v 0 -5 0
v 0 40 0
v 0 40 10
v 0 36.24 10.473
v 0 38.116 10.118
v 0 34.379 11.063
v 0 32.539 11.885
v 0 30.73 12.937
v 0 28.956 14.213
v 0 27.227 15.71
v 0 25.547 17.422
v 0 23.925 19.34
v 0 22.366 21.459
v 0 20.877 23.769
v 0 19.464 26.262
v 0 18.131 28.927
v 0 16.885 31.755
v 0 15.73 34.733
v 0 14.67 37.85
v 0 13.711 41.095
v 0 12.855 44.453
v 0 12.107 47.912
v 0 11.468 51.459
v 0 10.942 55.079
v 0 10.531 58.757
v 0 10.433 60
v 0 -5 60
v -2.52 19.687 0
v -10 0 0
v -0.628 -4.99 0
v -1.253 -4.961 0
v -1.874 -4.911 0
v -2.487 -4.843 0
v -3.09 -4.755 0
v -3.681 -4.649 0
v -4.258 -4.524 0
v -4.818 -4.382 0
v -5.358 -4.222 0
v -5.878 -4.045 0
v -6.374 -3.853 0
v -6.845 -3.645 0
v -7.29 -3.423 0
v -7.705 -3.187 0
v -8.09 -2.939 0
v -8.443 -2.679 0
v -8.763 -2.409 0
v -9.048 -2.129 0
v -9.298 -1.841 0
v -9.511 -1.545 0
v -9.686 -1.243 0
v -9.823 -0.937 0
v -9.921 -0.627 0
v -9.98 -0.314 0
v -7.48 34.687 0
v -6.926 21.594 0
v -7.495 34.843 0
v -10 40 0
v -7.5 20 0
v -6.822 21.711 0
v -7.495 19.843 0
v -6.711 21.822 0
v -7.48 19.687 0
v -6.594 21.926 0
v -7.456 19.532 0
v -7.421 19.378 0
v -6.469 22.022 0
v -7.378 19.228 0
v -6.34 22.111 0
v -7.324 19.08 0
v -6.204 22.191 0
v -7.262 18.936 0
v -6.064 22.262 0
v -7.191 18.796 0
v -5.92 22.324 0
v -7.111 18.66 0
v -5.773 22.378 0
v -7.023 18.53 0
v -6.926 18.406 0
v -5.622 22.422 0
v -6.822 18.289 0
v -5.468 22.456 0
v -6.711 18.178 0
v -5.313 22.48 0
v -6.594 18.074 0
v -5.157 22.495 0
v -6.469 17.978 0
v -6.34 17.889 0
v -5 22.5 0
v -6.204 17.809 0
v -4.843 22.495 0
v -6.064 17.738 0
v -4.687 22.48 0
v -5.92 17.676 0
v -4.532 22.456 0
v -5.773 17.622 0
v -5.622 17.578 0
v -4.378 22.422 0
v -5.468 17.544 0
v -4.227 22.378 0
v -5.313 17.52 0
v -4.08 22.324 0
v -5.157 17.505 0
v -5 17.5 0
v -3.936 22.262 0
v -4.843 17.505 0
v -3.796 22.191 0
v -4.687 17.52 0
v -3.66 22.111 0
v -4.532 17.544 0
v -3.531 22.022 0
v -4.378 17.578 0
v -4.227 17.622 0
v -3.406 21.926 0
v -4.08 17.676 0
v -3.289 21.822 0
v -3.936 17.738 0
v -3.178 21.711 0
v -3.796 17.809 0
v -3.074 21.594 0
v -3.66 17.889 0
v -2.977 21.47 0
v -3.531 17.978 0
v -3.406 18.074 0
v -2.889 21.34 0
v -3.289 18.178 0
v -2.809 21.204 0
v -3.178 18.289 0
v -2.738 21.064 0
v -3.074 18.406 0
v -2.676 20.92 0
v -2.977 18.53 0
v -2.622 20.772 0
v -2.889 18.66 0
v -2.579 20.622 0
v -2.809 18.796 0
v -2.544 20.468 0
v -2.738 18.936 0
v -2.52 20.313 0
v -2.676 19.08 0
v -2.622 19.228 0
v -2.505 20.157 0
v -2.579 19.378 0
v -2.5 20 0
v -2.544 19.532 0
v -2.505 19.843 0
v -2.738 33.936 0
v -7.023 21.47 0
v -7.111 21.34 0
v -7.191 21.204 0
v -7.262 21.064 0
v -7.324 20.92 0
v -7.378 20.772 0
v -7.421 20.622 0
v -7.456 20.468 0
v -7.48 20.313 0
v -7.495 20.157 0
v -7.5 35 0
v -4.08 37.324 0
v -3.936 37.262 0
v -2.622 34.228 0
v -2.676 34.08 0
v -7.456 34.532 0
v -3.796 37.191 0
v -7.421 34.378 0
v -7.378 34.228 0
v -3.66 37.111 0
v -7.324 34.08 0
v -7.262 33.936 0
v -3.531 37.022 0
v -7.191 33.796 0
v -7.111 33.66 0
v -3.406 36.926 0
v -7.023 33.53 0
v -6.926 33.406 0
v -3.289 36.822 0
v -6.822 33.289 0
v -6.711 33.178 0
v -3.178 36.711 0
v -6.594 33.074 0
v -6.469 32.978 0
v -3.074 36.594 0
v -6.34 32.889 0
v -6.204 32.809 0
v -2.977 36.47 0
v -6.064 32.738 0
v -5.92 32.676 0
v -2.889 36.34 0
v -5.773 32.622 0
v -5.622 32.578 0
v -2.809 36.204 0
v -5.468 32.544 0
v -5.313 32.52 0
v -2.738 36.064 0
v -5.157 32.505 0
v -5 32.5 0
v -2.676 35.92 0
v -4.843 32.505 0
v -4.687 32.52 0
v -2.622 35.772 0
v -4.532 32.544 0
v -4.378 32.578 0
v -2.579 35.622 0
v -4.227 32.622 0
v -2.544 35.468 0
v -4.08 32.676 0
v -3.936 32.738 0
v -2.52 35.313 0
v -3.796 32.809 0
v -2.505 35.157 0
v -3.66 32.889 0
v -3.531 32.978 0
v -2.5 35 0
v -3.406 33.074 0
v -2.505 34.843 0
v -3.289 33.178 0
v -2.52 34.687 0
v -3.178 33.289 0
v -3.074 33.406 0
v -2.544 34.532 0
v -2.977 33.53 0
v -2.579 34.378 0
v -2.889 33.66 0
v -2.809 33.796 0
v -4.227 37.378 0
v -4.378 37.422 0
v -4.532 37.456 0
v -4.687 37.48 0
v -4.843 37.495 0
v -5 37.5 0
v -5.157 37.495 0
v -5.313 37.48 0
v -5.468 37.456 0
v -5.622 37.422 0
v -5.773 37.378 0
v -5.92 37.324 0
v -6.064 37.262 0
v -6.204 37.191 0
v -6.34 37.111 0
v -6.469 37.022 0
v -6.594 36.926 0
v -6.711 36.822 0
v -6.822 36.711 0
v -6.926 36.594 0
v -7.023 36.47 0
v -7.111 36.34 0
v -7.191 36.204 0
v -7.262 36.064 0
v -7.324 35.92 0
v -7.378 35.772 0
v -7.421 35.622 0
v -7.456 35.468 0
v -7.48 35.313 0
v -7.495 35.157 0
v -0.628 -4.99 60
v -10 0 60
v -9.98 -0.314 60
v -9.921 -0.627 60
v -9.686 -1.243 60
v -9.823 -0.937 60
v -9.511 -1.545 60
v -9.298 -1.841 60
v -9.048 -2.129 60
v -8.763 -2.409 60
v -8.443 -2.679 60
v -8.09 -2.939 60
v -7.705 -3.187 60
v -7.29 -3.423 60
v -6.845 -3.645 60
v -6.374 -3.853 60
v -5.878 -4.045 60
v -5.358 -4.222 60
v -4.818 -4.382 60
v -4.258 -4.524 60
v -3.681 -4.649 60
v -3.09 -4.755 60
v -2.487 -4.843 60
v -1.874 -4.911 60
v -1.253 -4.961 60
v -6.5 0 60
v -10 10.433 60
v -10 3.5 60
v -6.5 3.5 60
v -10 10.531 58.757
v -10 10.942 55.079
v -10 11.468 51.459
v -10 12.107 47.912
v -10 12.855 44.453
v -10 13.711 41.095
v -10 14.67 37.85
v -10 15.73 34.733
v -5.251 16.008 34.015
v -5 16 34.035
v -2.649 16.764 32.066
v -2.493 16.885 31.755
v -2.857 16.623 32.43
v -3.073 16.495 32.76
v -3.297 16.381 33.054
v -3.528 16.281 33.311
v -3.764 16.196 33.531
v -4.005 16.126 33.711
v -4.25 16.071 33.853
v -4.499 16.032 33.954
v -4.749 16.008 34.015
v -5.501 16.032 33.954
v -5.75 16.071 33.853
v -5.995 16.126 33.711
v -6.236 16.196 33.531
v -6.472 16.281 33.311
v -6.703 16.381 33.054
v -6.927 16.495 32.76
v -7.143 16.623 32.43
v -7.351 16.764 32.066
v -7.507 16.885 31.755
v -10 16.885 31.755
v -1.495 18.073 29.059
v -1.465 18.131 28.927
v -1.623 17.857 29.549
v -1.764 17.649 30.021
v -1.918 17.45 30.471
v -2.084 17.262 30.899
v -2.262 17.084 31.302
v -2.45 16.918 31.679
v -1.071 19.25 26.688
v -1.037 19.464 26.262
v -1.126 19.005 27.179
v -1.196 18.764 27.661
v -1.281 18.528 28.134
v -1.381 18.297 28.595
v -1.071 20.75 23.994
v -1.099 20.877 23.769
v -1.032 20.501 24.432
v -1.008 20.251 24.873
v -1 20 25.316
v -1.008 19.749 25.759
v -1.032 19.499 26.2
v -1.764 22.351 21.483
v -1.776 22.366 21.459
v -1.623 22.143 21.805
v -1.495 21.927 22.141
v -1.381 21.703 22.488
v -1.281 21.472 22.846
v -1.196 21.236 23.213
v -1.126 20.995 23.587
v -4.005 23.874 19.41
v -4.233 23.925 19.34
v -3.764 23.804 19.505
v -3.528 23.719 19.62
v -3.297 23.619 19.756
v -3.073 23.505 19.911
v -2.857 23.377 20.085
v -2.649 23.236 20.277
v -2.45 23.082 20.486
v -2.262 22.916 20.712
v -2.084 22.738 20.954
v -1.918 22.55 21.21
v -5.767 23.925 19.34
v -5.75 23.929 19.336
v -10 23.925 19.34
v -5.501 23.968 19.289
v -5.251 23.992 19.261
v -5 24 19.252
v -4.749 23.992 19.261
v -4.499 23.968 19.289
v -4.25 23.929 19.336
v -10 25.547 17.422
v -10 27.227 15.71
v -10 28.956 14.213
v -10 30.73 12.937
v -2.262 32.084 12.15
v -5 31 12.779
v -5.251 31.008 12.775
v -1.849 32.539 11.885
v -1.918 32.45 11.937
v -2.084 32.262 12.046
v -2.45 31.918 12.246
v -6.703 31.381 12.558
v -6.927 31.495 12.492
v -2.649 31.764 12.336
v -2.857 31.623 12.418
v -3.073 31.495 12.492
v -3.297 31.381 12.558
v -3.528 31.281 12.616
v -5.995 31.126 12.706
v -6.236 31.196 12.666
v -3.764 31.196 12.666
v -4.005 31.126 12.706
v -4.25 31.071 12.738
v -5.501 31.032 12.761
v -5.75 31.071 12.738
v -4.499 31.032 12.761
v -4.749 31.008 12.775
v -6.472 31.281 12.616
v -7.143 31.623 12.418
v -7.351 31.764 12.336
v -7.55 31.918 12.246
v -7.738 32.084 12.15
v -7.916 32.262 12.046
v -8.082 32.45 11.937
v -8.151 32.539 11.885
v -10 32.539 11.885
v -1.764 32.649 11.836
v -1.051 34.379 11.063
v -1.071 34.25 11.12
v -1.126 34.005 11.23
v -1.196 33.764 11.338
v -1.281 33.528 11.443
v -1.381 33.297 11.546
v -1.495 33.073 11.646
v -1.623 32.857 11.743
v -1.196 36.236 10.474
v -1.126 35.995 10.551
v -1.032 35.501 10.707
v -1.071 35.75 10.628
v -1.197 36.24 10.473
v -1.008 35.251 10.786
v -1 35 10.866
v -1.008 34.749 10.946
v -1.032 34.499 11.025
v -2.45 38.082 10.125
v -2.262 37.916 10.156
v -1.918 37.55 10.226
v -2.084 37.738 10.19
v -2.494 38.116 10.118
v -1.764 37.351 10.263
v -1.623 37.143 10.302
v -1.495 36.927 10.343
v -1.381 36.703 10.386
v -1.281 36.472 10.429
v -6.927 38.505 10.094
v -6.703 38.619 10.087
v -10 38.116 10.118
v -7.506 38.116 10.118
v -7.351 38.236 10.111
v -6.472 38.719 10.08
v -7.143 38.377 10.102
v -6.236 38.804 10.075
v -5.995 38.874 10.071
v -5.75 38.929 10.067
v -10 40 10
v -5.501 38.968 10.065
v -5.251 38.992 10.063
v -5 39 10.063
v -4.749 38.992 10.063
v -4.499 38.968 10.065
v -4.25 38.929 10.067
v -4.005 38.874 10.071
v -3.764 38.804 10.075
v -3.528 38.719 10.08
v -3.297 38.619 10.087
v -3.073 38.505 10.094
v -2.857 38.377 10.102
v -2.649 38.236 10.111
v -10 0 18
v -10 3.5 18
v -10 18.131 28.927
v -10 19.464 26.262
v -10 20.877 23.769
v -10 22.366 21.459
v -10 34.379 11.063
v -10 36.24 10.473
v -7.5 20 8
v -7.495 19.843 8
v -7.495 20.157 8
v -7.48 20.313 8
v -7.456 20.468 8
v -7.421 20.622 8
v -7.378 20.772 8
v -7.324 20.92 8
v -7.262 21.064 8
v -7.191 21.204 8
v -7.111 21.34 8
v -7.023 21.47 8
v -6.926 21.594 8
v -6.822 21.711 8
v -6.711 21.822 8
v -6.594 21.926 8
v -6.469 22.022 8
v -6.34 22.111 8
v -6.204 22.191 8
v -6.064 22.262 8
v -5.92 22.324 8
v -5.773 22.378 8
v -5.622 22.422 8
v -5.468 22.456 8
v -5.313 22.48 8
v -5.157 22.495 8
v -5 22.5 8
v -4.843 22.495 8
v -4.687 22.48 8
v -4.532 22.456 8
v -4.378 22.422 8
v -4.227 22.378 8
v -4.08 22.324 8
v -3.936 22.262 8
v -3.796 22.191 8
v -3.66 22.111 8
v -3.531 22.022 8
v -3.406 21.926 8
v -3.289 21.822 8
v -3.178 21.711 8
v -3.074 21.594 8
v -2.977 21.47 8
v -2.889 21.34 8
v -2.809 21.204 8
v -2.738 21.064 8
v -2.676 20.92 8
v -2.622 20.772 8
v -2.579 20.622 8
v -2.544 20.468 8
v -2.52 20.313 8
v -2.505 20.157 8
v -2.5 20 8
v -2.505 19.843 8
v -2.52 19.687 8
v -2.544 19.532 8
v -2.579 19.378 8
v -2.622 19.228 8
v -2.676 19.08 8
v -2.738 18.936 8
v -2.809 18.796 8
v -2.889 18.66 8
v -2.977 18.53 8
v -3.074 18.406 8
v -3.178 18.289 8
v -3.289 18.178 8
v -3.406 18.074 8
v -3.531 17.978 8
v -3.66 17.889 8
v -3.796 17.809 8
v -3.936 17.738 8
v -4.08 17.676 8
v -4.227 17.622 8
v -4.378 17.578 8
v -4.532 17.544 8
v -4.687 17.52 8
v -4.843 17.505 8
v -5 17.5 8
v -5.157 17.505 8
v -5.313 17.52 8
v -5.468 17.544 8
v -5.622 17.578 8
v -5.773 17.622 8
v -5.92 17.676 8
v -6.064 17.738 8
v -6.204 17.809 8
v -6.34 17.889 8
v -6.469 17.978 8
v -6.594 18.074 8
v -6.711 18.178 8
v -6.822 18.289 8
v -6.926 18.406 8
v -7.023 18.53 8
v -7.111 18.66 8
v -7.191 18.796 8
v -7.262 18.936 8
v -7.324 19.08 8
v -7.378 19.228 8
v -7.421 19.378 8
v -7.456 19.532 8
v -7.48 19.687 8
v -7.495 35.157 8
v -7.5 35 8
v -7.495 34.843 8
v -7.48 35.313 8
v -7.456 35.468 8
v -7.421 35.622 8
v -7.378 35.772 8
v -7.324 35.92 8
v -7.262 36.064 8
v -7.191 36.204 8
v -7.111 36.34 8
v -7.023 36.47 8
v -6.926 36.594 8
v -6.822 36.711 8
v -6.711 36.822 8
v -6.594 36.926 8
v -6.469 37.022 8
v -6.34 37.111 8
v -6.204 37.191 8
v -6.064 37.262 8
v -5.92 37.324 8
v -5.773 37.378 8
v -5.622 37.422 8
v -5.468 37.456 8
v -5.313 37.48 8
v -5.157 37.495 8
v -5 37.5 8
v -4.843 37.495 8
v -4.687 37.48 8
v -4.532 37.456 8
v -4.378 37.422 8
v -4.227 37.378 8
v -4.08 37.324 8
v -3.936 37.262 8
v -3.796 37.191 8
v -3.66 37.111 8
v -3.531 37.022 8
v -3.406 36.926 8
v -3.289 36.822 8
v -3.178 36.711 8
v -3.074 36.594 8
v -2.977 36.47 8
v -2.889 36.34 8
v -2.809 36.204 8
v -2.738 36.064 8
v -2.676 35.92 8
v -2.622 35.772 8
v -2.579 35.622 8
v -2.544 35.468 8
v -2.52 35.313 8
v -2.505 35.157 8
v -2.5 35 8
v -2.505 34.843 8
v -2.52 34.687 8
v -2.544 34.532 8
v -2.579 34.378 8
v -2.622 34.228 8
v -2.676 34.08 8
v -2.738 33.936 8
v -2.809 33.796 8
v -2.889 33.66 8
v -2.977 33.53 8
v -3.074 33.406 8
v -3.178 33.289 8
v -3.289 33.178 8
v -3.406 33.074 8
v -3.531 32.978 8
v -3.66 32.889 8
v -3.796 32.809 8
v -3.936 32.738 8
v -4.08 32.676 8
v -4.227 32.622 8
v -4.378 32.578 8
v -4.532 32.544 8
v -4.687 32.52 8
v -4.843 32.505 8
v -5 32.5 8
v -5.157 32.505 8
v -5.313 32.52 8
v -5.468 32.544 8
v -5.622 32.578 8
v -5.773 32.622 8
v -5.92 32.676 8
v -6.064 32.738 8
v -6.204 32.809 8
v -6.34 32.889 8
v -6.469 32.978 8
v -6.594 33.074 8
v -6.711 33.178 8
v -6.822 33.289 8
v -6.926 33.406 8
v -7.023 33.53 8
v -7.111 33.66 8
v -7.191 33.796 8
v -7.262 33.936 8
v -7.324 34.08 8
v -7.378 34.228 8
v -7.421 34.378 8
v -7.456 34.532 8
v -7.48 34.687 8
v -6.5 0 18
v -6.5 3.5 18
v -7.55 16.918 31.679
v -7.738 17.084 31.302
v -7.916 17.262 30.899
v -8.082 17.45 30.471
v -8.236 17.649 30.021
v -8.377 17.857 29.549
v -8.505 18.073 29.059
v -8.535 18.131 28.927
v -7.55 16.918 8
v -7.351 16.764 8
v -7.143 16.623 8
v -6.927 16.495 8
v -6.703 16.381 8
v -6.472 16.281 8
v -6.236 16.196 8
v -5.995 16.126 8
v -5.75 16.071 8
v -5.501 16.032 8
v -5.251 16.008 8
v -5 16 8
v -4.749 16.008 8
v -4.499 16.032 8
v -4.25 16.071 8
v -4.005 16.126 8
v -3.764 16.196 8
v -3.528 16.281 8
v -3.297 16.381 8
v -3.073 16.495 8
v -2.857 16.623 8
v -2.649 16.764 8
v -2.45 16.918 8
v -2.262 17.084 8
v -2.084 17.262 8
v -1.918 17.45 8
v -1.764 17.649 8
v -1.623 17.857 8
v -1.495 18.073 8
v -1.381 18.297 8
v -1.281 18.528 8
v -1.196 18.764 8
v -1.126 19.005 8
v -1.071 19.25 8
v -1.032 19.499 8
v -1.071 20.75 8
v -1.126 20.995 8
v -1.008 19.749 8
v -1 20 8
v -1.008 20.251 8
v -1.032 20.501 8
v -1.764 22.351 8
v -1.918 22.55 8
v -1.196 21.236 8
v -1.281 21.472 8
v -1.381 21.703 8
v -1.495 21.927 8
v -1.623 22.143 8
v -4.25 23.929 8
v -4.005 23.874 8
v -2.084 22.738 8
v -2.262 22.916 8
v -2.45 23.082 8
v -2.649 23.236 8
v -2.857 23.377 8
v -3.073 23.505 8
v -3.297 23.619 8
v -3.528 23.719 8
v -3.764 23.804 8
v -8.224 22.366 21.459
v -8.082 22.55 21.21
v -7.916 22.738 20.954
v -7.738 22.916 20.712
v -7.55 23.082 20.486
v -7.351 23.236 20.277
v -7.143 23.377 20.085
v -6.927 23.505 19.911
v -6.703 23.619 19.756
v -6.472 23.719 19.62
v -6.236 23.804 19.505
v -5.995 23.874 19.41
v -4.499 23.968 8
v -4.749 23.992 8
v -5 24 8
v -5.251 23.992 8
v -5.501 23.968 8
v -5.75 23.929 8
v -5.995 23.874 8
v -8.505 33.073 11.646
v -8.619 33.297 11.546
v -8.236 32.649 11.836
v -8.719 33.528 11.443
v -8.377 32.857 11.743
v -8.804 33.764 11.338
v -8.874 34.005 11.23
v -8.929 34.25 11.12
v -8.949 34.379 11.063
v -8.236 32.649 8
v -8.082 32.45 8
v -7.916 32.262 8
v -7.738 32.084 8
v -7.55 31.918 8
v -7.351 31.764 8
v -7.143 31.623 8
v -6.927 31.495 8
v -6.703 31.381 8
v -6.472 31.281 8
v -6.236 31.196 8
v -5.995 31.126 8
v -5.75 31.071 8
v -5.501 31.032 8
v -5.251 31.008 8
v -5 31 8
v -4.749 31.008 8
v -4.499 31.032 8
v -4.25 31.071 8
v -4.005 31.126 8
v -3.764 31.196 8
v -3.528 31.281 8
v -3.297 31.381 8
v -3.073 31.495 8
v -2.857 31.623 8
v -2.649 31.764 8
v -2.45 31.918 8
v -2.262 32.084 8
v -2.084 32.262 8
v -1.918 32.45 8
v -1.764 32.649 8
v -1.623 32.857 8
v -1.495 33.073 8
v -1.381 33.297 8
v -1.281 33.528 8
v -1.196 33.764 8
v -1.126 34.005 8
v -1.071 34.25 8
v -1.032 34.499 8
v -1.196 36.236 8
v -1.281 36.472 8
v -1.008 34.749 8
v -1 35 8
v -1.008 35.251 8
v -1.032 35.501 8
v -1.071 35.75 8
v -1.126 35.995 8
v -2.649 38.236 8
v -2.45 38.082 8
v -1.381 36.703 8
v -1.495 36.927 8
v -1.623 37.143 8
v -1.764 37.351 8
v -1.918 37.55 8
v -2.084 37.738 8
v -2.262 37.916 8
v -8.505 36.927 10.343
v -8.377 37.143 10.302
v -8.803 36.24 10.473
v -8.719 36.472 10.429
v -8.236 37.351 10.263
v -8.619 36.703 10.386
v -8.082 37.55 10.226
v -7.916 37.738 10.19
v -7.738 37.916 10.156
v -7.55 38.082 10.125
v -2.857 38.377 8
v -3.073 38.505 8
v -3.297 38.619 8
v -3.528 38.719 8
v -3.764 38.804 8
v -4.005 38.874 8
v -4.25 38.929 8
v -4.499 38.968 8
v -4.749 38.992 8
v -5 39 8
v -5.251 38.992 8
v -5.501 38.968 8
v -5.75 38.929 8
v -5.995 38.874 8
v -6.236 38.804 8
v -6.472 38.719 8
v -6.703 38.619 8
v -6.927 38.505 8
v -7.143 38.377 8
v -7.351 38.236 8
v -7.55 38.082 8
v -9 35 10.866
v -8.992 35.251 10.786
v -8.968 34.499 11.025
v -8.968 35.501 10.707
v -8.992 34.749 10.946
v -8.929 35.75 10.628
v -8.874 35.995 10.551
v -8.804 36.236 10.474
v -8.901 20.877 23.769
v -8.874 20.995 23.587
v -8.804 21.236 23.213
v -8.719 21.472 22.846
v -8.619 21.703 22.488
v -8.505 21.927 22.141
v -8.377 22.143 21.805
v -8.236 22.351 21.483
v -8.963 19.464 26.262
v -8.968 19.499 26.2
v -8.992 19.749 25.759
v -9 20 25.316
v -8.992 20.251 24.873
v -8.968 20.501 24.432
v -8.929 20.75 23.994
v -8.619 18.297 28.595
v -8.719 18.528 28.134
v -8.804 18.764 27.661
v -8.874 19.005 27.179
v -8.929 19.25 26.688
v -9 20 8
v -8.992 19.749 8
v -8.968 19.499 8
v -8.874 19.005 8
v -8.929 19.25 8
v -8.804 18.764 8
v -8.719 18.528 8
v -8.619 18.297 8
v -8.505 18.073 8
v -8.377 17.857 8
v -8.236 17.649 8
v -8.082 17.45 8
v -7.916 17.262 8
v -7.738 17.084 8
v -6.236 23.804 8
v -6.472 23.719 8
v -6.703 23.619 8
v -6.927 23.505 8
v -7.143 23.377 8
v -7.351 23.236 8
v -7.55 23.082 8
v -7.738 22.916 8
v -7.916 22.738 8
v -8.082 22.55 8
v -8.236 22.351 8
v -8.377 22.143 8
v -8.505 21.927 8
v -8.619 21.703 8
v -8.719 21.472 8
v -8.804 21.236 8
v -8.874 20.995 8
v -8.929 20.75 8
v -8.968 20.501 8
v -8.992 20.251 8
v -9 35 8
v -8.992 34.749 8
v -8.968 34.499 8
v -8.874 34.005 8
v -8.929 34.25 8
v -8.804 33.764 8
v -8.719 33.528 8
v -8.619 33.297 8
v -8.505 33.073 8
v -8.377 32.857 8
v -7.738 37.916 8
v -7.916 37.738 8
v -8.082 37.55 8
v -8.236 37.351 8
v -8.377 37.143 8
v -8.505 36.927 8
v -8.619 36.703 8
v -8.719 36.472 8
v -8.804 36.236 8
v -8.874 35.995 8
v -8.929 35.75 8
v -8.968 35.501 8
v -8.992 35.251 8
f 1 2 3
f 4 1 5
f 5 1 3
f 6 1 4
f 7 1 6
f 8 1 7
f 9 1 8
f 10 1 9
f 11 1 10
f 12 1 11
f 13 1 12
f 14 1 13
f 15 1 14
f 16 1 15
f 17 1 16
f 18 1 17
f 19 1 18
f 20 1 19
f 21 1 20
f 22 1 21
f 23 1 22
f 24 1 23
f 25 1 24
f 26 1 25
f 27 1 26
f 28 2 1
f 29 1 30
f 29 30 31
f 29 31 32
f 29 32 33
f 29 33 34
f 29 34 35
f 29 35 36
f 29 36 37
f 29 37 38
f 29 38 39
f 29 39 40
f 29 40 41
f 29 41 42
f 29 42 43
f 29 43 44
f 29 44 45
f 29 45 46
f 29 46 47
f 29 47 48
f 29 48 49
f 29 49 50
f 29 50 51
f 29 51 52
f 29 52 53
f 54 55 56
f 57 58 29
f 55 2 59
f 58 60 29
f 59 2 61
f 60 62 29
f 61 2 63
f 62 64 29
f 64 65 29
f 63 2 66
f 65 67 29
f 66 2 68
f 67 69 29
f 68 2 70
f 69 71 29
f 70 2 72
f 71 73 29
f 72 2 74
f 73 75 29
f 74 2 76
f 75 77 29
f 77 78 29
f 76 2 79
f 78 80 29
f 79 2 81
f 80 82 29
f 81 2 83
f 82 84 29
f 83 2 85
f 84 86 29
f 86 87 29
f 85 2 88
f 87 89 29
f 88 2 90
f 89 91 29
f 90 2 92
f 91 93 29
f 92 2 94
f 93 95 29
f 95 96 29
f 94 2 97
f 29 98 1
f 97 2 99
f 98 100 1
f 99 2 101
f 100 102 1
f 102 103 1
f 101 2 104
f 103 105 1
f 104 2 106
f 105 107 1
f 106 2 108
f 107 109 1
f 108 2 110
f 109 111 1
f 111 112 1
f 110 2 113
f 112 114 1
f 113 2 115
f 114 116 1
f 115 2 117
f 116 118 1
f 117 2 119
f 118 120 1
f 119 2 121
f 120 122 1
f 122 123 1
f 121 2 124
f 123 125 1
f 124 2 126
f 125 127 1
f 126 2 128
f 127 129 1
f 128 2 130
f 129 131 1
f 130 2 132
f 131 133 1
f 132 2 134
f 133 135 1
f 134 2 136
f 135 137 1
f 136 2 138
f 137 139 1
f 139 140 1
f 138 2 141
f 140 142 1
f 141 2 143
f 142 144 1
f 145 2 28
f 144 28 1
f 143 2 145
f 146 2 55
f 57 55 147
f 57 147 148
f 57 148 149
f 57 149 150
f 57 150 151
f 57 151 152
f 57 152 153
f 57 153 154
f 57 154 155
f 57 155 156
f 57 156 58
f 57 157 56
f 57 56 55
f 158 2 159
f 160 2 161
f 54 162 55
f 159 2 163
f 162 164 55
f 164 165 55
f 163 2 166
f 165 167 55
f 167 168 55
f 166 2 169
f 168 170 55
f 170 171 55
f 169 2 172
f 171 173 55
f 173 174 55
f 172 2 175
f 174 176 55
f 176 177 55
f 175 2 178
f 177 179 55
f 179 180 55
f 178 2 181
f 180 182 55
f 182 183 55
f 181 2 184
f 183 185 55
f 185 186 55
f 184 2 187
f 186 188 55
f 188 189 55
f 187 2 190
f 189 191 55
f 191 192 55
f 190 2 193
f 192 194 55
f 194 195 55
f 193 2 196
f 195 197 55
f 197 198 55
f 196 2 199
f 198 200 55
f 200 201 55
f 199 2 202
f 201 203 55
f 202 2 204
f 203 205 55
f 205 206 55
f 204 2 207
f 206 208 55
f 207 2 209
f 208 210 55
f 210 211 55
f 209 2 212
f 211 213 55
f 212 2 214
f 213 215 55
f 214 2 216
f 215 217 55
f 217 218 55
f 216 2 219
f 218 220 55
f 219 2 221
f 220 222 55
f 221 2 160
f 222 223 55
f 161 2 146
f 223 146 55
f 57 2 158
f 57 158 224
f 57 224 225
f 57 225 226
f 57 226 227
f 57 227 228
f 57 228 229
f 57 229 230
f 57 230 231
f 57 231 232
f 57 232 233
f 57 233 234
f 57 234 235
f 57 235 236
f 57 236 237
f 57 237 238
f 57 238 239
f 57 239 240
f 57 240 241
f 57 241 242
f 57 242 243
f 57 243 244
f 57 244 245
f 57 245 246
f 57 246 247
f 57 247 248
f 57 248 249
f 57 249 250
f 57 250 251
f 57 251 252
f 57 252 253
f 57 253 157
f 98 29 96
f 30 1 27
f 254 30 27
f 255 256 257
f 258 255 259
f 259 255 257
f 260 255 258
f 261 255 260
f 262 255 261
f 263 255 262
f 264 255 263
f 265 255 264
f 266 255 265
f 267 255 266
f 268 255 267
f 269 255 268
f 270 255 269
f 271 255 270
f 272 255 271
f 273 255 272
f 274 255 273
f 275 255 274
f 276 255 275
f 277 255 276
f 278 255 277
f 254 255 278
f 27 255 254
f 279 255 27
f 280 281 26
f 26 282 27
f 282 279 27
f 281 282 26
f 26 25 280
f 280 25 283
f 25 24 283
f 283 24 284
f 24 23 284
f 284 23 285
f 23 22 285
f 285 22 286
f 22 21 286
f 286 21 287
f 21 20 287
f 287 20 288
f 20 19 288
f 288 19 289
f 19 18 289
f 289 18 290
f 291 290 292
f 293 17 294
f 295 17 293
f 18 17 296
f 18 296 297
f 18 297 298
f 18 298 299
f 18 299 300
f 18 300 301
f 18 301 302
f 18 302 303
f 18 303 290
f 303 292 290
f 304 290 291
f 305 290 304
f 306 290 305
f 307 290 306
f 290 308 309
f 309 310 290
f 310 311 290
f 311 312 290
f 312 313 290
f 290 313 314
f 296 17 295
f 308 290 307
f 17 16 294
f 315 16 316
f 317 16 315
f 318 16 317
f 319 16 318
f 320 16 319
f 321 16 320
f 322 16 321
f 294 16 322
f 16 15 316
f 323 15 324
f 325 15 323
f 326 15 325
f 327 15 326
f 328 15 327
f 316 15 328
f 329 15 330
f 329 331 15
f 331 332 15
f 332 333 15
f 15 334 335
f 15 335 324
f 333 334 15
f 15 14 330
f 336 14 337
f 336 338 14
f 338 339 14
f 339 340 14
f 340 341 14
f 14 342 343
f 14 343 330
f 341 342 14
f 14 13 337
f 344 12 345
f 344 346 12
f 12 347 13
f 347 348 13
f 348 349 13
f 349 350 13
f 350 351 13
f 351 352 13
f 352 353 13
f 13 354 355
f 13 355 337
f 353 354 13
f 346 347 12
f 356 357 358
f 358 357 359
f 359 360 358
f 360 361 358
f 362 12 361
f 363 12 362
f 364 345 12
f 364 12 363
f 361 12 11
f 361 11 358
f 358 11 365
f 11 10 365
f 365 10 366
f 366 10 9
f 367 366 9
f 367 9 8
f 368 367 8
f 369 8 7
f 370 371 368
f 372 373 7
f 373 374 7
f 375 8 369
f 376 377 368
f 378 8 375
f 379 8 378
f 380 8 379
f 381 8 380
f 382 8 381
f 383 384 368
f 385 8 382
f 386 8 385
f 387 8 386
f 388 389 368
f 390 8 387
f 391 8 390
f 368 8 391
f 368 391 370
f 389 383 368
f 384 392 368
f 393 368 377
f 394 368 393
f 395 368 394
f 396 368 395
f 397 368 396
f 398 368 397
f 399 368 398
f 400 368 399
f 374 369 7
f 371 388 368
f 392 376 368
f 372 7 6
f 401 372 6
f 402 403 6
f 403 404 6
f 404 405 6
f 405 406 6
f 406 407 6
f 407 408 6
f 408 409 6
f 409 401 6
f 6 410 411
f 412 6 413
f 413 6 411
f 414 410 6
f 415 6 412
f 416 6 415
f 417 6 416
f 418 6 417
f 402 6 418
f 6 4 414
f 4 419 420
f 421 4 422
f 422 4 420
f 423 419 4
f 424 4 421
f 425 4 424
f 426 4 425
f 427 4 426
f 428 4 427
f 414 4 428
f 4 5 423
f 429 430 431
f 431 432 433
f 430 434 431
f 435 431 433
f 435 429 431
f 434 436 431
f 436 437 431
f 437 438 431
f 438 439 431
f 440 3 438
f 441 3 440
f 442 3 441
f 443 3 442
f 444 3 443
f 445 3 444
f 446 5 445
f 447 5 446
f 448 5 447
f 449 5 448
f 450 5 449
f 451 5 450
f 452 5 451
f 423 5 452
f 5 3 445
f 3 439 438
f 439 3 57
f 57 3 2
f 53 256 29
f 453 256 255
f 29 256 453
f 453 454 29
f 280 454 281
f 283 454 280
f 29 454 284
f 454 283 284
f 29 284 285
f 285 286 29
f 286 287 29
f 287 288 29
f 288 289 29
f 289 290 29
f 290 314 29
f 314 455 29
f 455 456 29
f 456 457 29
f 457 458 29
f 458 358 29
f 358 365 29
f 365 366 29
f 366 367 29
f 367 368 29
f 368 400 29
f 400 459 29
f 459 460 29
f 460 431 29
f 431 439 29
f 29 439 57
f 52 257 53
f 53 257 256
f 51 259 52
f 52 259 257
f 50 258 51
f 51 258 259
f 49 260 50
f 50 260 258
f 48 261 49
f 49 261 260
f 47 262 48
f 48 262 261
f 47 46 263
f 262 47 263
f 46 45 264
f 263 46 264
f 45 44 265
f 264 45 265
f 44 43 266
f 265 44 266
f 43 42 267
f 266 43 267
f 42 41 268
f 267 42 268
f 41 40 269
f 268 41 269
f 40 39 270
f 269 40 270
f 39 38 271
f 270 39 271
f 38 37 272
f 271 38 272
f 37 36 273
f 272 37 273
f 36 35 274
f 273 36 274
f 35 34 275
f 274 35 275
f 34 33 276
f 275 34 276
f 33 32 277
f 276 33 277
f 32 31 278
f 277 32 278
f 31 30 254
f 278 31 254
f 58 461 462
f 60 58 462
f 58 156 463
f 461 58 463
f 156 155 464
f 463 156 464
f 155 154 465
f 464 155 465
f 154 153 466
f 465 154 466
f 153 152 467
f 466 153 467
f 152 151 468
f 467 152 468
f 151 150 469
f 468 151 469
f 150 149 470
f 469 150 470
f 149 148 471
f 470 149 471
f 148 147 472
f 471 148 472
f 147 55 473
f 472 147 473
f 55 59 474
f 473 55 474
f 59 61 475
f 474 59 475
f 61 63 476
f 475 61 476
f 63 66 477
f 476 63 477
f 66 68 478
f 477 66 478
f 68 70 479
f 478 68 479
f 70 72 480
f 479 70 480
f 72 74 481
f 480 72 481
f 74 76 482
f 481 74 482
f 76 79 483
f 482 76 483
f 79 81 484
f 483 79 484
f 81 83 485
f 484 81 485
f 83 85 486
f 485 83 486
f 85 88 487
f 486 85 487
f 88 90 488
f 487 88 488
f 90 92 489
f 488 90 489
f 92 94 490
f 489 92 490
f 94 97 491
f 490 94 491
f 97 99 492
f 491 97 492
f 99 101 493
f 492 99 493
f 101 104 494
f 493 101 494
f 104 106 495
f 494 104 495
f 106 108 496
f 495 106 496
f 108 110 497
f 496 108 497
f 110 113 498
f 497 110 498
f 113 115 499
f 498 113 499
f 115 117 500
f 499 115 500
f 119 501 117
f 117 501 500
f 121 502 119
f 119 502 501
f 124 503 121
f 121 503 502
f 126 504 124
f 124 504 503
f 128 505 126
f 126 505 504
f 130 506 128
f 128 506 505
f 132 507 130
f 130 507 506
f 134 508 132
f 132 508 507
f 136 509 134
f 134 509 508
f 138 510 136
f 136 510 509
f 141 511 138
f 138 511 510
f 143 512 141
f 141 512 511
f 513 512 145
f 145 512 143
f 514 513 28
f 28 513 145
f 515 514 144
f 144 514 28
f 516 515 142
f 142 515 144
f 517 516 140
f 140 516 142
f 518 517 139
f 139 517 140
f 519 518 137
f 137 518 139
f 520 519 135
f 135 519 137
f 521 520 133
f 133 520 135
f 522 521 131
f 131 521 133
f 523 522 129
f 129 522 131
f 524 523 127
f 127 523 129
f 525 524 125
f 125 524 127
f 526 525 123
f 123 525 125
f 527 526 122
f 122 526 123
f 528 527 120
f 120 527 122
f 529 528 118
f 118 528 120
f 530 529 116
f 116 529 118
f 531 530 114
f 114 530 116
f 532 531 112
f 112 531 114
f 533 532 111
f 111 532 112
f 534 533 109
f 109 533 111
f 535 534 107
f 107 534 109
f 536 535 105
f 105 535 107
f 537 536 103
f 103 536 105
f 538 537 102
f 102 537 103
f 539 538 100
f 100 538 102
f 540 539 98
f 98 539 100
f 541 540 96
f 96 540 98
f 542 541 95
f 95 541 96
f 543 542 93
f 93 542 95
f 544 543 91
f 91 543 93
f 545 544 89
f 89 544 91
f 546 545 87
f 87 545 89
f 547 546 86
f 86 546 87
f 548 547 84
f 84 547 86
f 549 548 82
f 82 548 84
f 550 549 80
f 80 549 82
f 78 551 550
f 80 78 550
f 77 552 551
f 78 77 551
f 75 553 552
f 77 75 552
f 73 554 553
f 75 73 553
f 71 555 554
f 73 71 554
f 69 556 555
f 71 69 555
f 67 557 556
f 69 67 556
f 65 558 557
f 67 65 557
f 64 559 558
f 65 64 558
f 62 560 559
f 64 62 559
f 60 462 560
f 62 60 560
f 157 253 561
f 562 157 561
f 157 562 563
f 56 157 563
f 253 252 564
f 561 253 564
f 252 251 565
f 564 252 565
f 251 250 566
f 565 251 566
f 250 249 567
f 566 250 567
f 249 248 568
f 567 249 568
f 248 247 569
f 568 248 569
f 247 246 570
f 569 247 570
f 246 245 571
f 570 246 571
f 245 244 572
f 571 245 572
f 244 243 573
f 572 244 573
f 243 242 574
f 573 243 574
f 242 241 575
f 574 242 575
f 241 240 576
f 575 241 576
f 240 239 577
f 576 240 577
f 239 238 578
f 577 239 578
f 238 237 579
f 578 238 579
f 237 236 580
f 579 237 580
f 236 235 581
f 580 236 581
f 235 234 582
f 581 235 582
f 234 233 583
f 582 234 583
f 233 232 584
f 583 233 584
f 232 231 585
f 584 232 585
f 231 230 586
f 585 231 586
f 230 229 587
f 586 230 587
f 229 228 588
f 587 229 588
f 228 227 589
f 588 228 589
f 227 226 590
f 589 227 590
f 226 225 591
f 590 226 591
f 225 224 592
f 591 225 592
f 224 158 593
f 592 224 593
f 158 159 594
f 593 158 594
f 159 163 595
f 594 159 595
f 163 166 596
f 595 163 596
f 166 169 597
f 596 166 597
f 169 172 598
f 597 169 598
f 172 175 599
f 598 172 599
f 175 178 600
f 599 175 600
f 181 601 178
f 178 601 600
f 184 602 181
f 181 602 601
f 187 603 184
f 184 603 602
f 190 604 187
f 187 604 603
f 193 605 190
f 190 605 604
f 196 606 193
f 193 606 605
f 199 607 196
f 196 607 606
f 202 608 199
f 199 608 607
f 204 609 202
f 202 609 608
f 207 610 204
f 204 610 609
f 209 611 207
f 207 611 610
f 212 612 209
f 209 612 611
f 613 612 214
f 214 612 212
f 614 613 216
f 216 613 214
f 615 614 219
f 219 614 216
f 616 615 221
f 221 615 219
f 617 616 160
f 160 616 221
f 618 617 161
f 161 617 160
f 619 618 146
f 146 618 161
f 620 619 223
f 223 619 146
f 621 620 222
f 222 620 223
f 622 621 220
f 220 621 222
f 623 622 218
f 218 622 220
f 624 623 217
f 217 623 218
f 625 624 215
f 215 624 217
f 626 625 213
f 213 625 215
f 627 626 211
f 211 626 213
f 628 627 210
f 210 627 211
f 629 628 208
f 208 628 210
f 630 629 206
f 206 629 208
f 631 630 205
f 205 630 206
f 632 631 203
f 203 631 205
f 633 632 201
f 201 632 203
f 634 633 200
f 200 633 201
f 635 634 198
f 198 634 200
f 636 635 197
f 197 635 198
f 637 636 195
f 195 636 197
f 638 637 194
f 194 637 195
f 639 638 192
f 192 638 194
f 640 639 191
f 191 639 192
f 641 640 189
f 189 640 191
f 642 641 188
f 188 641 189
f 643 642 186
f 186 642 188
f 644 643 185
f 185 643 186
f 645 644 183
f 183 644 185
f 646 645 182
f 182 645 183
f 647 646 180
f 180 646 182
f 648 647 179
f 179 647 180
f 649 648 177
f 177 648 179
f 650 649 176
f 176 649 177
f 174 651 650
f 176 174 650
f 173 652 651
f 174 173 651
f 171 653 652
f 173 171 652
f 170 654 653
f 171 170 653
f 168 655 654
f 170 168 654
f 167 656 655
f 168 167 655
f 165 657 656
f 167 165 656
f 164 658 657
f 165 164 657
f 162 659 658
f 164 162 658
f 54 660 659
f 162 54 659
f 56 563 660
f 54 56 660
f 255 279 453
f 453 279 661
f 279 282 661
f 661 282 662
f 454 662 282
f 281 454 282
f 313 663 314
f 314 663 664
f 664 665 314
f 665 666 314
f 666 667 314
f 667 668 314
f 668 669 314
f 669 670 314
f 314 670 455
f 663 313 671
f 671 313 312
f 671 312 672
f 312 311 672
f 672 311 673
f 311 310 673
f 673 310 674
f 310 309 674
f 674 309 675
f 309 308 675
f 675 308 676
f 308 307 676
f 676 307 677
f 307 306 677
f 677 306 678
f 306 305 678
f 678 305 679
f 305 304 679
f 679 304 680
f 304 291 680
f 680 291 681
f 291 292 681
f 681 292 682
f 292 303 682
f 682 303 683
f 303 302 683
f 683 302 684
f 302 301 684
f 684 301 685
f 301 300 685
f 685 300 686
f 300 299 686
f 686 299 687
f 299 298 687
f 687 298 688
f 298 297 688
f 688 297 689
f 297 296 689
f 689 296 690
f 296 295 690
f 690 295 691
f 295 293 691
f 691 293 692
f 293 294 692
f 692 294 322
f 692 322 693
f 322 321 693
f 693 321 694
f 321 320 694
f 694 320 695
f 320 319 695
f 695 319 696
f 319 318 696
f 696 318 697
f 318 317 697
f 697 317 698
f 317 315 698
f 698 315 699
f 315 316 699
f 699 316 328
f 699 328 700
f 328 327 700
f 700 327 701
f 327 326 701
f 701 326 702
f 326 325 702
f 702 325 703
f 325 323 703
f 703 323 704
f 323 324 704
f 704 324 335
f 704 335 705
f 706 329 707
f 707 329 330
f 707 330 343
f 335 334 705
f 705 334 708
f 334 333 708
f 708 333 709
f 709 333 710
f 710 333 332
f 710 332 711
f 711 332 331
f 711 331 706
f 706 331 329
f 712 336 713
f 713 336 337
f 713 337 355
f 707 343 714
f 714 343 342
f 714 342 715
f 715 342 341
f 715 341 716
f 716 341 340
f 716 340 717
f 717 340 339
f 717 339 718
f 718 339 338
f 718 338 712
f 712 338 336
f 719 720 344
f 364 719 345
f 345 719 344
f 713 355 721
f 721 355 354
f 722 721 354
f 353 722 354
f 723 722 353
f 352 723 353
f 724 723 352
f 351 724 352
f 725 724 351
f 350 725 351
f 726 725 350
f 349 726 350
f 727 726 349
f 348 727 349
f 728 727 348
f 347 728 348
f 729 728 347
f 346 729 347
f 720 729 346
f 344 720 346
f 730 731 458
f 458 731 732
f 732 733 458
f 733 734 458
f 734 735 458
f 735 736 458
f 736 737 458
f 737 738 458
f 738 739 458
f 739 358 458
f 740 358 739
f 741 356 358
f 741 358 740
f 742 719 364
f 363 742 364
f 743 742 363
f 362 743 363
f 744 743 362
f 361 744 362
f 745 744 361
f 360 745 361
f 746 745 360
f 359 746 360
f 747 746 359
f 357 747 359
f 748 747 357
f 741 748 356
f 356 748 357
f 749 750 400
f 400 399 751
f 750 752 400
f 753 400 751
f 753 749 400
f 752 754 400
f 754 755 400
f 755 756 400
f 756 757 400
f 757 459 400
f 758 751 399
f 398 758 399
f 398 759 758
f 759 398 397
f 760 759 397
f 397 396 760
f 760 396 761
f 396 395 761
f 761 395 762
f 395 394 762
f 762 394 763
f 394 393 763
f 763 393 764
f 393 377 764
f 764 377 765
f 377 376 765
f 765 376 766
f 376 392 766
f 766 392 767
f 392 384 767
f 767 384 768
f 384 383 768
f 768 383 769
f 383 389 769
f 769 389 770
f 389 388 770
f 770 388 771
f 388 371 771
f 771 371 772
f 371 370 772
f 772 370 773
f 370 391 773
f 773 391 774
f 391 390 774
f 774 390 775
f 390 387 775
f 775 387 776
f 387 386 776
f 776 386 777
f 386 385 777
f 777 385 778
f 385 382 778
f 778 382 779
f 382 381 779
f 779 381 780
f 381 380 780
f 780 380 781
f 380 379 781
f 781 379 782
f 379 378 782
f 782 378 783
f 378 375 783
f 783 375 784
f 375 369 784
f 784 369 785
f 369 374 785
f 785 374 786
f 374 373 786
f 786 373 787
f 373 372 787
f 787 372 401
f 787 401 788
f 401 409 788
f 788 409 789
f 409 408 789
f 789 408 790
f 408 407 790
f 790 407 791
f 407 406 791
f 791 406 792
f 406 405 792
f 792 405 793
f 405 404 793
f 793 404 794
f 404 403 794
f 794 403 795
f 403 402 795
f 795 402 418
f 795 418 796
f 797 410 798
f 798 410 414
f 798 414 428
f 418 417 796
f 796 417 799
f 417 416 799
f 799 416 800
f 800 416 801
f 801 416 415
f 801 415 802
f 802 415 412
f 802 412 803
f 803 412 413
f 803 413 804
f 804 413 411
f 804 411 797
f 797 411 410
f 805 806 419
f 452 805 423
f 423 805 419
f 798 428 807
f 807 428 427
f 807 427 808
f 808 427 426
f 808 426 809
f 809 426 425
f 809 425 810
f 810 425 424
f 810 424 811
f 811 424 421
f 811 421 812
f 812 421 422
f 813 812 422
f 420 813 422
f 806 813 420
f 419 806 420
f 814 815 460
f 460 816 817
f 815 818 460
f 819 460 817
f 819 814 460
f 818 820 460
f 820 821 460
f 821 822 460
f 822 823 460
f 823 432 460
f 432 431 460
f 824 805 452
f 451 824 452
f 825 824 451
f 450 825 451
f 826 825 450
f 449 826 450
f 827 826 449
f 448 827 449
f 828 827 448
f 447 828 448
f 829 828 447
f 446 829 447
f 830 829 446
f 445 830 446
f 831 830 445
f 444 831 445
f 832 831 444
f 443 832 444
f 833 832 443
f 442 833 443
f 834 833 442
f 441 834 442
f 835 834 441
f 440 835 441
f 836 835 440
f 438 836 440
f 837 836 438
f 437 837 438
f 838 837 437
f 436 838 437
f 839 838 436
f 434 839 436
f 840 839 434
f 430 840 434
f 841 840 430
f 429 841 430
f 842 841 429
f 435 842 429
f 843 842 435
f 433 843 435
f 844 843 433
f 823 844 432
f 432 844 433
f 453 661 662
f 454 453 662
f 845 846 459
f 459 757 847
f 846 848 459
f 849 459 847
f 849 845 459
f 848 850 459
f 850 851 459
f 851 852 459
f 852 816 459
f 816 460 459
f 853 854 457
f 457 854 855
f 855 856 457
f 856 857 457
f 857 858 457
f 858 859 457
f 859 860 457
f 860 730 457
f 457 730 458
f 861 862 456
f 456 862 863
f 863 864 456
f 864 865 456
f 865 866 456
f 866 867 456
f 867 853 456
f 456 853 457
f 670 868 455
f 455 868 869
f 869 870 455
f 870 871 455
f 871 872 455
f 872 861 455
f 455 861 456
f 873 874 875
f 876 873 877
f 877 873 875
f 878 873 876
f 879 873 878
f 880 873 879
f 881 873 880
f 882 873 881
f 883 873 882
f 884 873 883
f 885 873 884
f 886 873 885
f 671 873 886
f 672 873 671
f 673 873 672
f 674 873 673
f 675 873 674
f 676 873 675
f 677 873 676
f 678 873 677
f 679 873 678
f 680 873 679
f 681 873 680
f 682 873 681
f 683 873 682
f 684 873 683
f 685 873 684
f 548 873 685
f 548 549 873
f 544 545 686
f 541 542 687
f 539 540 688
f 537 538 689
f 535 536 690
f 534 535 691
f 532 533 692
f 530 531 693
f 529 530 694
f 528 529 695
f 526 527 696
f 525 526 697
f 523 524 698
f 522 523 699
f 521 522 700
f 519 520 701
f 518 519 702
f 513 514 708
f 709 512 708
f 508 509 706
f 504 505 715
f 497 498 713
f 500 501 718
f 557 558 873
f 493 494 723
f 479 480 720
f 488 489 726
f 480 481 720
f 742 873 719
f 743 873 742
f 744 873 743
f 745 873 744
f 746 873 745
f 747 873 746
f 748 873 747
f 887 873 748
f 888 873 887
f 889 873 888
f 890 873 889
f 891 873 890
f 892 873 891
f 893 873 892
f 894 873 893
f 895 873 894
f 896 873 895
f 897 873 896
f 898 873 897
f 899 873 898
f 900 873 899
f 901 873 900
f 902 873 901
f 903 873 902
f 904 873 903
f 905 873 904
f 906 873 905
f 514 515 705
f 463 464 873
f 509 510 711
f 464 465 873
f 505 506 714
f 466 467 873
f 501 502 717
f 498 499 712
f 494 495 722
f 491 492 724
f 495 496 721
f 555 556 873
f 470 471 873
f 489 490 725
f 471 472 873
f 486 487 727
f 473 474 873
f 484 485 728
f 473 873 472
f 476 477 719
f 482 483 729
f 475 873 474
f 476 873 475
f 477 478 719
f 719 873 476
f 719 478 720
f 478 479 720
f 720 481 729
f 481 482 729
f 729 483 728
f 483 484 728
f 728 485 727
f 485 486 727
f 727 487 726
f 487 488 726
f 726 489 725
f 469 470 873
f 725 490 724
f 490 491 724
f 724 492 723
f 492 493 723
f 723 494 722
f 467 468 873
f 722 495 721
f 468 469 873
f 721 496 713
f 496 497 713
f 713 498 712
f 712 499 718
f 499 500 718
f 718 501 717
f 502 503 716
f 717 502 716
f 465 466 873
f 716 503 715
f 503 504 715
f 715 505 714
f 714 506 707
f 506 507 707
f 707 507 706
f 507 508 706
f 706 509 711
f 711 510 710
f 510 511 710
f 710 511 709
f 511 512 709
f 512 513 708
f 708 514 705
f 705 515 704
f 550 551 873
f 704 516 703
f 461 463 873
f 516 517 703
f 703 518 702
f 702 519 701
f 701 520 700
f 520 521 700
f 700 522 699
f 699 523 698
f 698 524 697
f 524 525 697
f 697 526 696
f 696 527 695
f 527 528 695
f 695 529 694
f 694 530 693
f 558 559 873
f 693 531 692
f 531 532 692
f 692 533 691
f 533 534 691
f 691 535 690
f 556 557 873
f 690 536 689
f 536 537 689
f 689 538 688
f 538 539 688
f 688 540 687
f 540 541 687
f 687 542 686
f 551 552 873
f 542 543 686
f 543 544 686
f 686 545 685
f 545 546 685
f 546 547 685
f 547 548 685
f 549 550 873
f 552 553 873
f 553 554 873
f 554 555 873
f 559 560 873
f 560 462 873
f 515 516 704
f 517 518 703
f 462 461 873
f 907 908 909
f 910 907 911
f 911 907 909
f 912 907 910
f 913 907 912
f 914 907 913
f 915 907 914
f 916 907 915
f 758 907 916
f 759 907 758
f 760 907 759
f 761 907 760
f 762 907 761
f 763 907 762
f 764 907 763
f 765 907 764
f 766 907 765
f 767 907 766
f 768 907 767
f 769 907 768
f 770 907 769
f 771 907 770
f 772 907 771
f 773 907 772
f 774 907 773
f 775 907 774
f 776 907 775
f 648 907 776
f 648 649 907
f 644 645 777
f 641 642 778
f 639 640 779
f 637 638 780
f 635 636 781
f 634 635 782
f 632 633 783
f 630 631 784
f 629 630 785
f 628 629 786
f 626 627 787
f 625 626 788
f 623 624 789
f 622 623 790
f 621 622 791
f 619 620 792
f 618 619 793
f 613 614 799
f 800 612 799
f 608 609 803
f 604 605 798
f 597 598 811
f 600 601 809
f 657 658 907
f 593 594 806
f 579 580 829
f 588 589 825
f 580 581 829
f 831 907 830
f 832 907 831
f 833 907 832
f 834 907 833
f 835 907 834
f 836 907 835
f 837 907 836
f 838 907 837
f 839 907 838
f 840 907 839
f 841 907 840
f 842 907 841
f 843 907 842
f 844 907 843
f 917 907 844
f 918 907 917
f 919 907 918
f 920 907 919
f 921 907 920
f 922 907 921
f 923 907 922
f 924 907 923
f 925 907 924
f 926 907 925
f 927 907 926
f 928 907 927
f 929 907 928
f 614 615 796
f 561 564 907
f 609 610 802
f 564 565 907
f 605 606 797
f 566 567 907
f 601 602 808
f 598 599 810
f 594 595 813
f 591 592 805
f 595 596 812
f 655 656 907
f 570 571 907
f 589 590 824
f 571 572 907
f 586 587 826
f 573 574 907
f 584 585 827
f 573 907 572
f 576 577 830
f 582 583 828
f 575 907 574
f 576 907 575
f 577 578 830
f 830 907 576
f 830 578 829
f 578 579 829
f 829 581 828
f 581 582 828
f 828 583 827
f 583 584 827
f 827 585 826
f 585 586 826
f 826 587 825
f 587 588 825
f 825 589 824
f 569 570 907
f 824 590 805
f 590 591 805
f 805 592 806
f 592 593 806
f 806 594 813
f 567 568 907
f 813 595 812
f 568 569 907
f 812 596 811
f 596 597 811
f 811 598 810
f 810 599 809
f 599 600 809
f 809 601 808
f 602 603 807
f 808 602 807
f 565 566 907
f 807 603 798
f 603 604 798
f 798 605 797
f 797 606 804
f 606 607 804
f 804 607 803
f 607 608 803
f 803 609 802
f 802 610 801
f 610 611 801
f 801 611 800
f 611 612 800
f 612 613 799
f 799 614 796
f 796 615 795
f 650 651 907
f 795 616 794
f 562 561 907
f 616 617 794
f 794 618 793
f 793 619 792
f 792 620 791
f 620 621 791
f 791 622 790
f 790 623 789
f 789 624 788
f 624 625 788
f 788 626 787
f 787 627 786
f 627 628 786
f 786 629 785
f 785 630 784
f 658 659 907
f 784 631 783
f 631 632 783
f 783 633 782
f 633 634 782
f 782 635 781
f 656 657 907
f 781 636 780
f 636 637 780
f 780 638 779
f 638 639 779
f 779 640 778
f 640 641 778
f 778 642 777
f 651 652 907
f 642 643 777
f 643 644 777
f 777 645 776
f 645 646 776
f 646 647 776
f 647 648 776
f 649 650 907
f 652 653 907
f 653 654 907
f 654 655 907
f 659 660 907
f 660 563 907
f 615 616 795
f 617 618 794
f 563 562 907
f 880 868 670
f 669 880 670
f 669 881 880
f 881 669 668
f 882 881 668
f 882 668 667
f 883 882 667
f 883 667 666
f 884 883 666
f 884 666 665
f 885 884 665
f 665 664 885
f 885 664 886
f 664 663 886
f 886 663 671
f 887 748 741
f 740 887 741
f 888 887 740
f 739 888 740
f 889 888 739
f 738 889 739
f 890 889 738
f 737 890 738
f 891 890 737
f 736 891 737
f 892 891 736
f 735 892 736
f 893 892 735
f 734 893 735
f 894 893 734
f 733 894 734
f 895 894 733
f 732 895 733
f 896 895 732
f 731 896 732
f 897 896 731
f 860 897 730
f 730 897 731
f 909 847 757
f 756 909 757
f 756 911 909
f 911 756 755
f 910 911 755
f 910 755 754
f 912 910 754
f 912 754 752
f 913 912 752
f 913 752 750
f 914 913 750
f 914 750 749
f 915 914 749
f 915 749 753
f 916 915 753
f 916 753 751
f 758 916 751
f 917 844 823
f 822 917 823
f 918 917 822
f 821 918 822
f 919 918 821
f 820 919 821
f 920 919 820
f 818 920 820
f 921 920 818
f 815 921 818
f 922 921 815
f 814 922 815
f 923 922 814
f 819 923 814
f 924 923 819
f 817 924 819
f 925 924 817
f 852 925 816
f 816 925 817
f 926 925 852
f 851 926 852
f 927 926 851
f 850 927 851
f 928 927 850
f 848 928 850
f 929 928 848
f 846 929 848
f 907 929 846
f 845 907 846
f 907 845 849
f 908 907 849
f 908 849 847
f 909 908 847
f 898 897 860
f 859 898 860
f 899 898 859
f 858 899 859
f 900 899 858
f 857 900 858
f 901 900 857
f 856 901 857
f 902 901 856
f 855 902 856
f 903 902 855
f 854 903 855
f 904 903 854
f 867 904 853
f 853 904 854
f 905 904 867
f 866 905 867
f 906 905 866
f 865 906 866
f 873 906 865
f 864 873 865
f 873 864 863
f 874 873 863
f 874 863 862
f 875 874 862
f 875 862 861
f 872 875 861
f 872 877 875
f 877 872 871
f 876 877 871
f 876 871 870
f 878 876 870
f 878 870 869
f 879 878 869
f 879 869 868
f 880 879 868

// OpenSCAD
// file: strut.scad
$fn=100;

module strut() {
    difference() {
        difference() {
            union() {
                translate([0,0,0]) cube([10, 40, 60]);
                scale([1,0.5,1]) intersection() {
                    translate([0,0,0]) cylinder(r=10,h=60);
                    translate([0,-10,0]) cube([10, 20, 60]);
                }
            }
            translate([-1,40,70]) scale([1,3,6]) rotate([0,90,0]) cylinder(r=10, h=50);
        }
        translate([10-3.5, 0, 18]) cube([40, 3.5, 70]);
        translate([10/2, 35, 8]) screw();
        translate([10/2, 20, 8]) screw();
    }
}

module screw(r1=5/2, r2=8/2) {
    union() {
        translate([0,0,-100/2+1])cylinder(r=r1, h=100, center=true);
        translate([0,0,100/2]) cylinder(r=r2, h=100, center=true);
    }
}
// main file
include <strut.scad>

//rotate([0,90,0])
mirror() strut();
